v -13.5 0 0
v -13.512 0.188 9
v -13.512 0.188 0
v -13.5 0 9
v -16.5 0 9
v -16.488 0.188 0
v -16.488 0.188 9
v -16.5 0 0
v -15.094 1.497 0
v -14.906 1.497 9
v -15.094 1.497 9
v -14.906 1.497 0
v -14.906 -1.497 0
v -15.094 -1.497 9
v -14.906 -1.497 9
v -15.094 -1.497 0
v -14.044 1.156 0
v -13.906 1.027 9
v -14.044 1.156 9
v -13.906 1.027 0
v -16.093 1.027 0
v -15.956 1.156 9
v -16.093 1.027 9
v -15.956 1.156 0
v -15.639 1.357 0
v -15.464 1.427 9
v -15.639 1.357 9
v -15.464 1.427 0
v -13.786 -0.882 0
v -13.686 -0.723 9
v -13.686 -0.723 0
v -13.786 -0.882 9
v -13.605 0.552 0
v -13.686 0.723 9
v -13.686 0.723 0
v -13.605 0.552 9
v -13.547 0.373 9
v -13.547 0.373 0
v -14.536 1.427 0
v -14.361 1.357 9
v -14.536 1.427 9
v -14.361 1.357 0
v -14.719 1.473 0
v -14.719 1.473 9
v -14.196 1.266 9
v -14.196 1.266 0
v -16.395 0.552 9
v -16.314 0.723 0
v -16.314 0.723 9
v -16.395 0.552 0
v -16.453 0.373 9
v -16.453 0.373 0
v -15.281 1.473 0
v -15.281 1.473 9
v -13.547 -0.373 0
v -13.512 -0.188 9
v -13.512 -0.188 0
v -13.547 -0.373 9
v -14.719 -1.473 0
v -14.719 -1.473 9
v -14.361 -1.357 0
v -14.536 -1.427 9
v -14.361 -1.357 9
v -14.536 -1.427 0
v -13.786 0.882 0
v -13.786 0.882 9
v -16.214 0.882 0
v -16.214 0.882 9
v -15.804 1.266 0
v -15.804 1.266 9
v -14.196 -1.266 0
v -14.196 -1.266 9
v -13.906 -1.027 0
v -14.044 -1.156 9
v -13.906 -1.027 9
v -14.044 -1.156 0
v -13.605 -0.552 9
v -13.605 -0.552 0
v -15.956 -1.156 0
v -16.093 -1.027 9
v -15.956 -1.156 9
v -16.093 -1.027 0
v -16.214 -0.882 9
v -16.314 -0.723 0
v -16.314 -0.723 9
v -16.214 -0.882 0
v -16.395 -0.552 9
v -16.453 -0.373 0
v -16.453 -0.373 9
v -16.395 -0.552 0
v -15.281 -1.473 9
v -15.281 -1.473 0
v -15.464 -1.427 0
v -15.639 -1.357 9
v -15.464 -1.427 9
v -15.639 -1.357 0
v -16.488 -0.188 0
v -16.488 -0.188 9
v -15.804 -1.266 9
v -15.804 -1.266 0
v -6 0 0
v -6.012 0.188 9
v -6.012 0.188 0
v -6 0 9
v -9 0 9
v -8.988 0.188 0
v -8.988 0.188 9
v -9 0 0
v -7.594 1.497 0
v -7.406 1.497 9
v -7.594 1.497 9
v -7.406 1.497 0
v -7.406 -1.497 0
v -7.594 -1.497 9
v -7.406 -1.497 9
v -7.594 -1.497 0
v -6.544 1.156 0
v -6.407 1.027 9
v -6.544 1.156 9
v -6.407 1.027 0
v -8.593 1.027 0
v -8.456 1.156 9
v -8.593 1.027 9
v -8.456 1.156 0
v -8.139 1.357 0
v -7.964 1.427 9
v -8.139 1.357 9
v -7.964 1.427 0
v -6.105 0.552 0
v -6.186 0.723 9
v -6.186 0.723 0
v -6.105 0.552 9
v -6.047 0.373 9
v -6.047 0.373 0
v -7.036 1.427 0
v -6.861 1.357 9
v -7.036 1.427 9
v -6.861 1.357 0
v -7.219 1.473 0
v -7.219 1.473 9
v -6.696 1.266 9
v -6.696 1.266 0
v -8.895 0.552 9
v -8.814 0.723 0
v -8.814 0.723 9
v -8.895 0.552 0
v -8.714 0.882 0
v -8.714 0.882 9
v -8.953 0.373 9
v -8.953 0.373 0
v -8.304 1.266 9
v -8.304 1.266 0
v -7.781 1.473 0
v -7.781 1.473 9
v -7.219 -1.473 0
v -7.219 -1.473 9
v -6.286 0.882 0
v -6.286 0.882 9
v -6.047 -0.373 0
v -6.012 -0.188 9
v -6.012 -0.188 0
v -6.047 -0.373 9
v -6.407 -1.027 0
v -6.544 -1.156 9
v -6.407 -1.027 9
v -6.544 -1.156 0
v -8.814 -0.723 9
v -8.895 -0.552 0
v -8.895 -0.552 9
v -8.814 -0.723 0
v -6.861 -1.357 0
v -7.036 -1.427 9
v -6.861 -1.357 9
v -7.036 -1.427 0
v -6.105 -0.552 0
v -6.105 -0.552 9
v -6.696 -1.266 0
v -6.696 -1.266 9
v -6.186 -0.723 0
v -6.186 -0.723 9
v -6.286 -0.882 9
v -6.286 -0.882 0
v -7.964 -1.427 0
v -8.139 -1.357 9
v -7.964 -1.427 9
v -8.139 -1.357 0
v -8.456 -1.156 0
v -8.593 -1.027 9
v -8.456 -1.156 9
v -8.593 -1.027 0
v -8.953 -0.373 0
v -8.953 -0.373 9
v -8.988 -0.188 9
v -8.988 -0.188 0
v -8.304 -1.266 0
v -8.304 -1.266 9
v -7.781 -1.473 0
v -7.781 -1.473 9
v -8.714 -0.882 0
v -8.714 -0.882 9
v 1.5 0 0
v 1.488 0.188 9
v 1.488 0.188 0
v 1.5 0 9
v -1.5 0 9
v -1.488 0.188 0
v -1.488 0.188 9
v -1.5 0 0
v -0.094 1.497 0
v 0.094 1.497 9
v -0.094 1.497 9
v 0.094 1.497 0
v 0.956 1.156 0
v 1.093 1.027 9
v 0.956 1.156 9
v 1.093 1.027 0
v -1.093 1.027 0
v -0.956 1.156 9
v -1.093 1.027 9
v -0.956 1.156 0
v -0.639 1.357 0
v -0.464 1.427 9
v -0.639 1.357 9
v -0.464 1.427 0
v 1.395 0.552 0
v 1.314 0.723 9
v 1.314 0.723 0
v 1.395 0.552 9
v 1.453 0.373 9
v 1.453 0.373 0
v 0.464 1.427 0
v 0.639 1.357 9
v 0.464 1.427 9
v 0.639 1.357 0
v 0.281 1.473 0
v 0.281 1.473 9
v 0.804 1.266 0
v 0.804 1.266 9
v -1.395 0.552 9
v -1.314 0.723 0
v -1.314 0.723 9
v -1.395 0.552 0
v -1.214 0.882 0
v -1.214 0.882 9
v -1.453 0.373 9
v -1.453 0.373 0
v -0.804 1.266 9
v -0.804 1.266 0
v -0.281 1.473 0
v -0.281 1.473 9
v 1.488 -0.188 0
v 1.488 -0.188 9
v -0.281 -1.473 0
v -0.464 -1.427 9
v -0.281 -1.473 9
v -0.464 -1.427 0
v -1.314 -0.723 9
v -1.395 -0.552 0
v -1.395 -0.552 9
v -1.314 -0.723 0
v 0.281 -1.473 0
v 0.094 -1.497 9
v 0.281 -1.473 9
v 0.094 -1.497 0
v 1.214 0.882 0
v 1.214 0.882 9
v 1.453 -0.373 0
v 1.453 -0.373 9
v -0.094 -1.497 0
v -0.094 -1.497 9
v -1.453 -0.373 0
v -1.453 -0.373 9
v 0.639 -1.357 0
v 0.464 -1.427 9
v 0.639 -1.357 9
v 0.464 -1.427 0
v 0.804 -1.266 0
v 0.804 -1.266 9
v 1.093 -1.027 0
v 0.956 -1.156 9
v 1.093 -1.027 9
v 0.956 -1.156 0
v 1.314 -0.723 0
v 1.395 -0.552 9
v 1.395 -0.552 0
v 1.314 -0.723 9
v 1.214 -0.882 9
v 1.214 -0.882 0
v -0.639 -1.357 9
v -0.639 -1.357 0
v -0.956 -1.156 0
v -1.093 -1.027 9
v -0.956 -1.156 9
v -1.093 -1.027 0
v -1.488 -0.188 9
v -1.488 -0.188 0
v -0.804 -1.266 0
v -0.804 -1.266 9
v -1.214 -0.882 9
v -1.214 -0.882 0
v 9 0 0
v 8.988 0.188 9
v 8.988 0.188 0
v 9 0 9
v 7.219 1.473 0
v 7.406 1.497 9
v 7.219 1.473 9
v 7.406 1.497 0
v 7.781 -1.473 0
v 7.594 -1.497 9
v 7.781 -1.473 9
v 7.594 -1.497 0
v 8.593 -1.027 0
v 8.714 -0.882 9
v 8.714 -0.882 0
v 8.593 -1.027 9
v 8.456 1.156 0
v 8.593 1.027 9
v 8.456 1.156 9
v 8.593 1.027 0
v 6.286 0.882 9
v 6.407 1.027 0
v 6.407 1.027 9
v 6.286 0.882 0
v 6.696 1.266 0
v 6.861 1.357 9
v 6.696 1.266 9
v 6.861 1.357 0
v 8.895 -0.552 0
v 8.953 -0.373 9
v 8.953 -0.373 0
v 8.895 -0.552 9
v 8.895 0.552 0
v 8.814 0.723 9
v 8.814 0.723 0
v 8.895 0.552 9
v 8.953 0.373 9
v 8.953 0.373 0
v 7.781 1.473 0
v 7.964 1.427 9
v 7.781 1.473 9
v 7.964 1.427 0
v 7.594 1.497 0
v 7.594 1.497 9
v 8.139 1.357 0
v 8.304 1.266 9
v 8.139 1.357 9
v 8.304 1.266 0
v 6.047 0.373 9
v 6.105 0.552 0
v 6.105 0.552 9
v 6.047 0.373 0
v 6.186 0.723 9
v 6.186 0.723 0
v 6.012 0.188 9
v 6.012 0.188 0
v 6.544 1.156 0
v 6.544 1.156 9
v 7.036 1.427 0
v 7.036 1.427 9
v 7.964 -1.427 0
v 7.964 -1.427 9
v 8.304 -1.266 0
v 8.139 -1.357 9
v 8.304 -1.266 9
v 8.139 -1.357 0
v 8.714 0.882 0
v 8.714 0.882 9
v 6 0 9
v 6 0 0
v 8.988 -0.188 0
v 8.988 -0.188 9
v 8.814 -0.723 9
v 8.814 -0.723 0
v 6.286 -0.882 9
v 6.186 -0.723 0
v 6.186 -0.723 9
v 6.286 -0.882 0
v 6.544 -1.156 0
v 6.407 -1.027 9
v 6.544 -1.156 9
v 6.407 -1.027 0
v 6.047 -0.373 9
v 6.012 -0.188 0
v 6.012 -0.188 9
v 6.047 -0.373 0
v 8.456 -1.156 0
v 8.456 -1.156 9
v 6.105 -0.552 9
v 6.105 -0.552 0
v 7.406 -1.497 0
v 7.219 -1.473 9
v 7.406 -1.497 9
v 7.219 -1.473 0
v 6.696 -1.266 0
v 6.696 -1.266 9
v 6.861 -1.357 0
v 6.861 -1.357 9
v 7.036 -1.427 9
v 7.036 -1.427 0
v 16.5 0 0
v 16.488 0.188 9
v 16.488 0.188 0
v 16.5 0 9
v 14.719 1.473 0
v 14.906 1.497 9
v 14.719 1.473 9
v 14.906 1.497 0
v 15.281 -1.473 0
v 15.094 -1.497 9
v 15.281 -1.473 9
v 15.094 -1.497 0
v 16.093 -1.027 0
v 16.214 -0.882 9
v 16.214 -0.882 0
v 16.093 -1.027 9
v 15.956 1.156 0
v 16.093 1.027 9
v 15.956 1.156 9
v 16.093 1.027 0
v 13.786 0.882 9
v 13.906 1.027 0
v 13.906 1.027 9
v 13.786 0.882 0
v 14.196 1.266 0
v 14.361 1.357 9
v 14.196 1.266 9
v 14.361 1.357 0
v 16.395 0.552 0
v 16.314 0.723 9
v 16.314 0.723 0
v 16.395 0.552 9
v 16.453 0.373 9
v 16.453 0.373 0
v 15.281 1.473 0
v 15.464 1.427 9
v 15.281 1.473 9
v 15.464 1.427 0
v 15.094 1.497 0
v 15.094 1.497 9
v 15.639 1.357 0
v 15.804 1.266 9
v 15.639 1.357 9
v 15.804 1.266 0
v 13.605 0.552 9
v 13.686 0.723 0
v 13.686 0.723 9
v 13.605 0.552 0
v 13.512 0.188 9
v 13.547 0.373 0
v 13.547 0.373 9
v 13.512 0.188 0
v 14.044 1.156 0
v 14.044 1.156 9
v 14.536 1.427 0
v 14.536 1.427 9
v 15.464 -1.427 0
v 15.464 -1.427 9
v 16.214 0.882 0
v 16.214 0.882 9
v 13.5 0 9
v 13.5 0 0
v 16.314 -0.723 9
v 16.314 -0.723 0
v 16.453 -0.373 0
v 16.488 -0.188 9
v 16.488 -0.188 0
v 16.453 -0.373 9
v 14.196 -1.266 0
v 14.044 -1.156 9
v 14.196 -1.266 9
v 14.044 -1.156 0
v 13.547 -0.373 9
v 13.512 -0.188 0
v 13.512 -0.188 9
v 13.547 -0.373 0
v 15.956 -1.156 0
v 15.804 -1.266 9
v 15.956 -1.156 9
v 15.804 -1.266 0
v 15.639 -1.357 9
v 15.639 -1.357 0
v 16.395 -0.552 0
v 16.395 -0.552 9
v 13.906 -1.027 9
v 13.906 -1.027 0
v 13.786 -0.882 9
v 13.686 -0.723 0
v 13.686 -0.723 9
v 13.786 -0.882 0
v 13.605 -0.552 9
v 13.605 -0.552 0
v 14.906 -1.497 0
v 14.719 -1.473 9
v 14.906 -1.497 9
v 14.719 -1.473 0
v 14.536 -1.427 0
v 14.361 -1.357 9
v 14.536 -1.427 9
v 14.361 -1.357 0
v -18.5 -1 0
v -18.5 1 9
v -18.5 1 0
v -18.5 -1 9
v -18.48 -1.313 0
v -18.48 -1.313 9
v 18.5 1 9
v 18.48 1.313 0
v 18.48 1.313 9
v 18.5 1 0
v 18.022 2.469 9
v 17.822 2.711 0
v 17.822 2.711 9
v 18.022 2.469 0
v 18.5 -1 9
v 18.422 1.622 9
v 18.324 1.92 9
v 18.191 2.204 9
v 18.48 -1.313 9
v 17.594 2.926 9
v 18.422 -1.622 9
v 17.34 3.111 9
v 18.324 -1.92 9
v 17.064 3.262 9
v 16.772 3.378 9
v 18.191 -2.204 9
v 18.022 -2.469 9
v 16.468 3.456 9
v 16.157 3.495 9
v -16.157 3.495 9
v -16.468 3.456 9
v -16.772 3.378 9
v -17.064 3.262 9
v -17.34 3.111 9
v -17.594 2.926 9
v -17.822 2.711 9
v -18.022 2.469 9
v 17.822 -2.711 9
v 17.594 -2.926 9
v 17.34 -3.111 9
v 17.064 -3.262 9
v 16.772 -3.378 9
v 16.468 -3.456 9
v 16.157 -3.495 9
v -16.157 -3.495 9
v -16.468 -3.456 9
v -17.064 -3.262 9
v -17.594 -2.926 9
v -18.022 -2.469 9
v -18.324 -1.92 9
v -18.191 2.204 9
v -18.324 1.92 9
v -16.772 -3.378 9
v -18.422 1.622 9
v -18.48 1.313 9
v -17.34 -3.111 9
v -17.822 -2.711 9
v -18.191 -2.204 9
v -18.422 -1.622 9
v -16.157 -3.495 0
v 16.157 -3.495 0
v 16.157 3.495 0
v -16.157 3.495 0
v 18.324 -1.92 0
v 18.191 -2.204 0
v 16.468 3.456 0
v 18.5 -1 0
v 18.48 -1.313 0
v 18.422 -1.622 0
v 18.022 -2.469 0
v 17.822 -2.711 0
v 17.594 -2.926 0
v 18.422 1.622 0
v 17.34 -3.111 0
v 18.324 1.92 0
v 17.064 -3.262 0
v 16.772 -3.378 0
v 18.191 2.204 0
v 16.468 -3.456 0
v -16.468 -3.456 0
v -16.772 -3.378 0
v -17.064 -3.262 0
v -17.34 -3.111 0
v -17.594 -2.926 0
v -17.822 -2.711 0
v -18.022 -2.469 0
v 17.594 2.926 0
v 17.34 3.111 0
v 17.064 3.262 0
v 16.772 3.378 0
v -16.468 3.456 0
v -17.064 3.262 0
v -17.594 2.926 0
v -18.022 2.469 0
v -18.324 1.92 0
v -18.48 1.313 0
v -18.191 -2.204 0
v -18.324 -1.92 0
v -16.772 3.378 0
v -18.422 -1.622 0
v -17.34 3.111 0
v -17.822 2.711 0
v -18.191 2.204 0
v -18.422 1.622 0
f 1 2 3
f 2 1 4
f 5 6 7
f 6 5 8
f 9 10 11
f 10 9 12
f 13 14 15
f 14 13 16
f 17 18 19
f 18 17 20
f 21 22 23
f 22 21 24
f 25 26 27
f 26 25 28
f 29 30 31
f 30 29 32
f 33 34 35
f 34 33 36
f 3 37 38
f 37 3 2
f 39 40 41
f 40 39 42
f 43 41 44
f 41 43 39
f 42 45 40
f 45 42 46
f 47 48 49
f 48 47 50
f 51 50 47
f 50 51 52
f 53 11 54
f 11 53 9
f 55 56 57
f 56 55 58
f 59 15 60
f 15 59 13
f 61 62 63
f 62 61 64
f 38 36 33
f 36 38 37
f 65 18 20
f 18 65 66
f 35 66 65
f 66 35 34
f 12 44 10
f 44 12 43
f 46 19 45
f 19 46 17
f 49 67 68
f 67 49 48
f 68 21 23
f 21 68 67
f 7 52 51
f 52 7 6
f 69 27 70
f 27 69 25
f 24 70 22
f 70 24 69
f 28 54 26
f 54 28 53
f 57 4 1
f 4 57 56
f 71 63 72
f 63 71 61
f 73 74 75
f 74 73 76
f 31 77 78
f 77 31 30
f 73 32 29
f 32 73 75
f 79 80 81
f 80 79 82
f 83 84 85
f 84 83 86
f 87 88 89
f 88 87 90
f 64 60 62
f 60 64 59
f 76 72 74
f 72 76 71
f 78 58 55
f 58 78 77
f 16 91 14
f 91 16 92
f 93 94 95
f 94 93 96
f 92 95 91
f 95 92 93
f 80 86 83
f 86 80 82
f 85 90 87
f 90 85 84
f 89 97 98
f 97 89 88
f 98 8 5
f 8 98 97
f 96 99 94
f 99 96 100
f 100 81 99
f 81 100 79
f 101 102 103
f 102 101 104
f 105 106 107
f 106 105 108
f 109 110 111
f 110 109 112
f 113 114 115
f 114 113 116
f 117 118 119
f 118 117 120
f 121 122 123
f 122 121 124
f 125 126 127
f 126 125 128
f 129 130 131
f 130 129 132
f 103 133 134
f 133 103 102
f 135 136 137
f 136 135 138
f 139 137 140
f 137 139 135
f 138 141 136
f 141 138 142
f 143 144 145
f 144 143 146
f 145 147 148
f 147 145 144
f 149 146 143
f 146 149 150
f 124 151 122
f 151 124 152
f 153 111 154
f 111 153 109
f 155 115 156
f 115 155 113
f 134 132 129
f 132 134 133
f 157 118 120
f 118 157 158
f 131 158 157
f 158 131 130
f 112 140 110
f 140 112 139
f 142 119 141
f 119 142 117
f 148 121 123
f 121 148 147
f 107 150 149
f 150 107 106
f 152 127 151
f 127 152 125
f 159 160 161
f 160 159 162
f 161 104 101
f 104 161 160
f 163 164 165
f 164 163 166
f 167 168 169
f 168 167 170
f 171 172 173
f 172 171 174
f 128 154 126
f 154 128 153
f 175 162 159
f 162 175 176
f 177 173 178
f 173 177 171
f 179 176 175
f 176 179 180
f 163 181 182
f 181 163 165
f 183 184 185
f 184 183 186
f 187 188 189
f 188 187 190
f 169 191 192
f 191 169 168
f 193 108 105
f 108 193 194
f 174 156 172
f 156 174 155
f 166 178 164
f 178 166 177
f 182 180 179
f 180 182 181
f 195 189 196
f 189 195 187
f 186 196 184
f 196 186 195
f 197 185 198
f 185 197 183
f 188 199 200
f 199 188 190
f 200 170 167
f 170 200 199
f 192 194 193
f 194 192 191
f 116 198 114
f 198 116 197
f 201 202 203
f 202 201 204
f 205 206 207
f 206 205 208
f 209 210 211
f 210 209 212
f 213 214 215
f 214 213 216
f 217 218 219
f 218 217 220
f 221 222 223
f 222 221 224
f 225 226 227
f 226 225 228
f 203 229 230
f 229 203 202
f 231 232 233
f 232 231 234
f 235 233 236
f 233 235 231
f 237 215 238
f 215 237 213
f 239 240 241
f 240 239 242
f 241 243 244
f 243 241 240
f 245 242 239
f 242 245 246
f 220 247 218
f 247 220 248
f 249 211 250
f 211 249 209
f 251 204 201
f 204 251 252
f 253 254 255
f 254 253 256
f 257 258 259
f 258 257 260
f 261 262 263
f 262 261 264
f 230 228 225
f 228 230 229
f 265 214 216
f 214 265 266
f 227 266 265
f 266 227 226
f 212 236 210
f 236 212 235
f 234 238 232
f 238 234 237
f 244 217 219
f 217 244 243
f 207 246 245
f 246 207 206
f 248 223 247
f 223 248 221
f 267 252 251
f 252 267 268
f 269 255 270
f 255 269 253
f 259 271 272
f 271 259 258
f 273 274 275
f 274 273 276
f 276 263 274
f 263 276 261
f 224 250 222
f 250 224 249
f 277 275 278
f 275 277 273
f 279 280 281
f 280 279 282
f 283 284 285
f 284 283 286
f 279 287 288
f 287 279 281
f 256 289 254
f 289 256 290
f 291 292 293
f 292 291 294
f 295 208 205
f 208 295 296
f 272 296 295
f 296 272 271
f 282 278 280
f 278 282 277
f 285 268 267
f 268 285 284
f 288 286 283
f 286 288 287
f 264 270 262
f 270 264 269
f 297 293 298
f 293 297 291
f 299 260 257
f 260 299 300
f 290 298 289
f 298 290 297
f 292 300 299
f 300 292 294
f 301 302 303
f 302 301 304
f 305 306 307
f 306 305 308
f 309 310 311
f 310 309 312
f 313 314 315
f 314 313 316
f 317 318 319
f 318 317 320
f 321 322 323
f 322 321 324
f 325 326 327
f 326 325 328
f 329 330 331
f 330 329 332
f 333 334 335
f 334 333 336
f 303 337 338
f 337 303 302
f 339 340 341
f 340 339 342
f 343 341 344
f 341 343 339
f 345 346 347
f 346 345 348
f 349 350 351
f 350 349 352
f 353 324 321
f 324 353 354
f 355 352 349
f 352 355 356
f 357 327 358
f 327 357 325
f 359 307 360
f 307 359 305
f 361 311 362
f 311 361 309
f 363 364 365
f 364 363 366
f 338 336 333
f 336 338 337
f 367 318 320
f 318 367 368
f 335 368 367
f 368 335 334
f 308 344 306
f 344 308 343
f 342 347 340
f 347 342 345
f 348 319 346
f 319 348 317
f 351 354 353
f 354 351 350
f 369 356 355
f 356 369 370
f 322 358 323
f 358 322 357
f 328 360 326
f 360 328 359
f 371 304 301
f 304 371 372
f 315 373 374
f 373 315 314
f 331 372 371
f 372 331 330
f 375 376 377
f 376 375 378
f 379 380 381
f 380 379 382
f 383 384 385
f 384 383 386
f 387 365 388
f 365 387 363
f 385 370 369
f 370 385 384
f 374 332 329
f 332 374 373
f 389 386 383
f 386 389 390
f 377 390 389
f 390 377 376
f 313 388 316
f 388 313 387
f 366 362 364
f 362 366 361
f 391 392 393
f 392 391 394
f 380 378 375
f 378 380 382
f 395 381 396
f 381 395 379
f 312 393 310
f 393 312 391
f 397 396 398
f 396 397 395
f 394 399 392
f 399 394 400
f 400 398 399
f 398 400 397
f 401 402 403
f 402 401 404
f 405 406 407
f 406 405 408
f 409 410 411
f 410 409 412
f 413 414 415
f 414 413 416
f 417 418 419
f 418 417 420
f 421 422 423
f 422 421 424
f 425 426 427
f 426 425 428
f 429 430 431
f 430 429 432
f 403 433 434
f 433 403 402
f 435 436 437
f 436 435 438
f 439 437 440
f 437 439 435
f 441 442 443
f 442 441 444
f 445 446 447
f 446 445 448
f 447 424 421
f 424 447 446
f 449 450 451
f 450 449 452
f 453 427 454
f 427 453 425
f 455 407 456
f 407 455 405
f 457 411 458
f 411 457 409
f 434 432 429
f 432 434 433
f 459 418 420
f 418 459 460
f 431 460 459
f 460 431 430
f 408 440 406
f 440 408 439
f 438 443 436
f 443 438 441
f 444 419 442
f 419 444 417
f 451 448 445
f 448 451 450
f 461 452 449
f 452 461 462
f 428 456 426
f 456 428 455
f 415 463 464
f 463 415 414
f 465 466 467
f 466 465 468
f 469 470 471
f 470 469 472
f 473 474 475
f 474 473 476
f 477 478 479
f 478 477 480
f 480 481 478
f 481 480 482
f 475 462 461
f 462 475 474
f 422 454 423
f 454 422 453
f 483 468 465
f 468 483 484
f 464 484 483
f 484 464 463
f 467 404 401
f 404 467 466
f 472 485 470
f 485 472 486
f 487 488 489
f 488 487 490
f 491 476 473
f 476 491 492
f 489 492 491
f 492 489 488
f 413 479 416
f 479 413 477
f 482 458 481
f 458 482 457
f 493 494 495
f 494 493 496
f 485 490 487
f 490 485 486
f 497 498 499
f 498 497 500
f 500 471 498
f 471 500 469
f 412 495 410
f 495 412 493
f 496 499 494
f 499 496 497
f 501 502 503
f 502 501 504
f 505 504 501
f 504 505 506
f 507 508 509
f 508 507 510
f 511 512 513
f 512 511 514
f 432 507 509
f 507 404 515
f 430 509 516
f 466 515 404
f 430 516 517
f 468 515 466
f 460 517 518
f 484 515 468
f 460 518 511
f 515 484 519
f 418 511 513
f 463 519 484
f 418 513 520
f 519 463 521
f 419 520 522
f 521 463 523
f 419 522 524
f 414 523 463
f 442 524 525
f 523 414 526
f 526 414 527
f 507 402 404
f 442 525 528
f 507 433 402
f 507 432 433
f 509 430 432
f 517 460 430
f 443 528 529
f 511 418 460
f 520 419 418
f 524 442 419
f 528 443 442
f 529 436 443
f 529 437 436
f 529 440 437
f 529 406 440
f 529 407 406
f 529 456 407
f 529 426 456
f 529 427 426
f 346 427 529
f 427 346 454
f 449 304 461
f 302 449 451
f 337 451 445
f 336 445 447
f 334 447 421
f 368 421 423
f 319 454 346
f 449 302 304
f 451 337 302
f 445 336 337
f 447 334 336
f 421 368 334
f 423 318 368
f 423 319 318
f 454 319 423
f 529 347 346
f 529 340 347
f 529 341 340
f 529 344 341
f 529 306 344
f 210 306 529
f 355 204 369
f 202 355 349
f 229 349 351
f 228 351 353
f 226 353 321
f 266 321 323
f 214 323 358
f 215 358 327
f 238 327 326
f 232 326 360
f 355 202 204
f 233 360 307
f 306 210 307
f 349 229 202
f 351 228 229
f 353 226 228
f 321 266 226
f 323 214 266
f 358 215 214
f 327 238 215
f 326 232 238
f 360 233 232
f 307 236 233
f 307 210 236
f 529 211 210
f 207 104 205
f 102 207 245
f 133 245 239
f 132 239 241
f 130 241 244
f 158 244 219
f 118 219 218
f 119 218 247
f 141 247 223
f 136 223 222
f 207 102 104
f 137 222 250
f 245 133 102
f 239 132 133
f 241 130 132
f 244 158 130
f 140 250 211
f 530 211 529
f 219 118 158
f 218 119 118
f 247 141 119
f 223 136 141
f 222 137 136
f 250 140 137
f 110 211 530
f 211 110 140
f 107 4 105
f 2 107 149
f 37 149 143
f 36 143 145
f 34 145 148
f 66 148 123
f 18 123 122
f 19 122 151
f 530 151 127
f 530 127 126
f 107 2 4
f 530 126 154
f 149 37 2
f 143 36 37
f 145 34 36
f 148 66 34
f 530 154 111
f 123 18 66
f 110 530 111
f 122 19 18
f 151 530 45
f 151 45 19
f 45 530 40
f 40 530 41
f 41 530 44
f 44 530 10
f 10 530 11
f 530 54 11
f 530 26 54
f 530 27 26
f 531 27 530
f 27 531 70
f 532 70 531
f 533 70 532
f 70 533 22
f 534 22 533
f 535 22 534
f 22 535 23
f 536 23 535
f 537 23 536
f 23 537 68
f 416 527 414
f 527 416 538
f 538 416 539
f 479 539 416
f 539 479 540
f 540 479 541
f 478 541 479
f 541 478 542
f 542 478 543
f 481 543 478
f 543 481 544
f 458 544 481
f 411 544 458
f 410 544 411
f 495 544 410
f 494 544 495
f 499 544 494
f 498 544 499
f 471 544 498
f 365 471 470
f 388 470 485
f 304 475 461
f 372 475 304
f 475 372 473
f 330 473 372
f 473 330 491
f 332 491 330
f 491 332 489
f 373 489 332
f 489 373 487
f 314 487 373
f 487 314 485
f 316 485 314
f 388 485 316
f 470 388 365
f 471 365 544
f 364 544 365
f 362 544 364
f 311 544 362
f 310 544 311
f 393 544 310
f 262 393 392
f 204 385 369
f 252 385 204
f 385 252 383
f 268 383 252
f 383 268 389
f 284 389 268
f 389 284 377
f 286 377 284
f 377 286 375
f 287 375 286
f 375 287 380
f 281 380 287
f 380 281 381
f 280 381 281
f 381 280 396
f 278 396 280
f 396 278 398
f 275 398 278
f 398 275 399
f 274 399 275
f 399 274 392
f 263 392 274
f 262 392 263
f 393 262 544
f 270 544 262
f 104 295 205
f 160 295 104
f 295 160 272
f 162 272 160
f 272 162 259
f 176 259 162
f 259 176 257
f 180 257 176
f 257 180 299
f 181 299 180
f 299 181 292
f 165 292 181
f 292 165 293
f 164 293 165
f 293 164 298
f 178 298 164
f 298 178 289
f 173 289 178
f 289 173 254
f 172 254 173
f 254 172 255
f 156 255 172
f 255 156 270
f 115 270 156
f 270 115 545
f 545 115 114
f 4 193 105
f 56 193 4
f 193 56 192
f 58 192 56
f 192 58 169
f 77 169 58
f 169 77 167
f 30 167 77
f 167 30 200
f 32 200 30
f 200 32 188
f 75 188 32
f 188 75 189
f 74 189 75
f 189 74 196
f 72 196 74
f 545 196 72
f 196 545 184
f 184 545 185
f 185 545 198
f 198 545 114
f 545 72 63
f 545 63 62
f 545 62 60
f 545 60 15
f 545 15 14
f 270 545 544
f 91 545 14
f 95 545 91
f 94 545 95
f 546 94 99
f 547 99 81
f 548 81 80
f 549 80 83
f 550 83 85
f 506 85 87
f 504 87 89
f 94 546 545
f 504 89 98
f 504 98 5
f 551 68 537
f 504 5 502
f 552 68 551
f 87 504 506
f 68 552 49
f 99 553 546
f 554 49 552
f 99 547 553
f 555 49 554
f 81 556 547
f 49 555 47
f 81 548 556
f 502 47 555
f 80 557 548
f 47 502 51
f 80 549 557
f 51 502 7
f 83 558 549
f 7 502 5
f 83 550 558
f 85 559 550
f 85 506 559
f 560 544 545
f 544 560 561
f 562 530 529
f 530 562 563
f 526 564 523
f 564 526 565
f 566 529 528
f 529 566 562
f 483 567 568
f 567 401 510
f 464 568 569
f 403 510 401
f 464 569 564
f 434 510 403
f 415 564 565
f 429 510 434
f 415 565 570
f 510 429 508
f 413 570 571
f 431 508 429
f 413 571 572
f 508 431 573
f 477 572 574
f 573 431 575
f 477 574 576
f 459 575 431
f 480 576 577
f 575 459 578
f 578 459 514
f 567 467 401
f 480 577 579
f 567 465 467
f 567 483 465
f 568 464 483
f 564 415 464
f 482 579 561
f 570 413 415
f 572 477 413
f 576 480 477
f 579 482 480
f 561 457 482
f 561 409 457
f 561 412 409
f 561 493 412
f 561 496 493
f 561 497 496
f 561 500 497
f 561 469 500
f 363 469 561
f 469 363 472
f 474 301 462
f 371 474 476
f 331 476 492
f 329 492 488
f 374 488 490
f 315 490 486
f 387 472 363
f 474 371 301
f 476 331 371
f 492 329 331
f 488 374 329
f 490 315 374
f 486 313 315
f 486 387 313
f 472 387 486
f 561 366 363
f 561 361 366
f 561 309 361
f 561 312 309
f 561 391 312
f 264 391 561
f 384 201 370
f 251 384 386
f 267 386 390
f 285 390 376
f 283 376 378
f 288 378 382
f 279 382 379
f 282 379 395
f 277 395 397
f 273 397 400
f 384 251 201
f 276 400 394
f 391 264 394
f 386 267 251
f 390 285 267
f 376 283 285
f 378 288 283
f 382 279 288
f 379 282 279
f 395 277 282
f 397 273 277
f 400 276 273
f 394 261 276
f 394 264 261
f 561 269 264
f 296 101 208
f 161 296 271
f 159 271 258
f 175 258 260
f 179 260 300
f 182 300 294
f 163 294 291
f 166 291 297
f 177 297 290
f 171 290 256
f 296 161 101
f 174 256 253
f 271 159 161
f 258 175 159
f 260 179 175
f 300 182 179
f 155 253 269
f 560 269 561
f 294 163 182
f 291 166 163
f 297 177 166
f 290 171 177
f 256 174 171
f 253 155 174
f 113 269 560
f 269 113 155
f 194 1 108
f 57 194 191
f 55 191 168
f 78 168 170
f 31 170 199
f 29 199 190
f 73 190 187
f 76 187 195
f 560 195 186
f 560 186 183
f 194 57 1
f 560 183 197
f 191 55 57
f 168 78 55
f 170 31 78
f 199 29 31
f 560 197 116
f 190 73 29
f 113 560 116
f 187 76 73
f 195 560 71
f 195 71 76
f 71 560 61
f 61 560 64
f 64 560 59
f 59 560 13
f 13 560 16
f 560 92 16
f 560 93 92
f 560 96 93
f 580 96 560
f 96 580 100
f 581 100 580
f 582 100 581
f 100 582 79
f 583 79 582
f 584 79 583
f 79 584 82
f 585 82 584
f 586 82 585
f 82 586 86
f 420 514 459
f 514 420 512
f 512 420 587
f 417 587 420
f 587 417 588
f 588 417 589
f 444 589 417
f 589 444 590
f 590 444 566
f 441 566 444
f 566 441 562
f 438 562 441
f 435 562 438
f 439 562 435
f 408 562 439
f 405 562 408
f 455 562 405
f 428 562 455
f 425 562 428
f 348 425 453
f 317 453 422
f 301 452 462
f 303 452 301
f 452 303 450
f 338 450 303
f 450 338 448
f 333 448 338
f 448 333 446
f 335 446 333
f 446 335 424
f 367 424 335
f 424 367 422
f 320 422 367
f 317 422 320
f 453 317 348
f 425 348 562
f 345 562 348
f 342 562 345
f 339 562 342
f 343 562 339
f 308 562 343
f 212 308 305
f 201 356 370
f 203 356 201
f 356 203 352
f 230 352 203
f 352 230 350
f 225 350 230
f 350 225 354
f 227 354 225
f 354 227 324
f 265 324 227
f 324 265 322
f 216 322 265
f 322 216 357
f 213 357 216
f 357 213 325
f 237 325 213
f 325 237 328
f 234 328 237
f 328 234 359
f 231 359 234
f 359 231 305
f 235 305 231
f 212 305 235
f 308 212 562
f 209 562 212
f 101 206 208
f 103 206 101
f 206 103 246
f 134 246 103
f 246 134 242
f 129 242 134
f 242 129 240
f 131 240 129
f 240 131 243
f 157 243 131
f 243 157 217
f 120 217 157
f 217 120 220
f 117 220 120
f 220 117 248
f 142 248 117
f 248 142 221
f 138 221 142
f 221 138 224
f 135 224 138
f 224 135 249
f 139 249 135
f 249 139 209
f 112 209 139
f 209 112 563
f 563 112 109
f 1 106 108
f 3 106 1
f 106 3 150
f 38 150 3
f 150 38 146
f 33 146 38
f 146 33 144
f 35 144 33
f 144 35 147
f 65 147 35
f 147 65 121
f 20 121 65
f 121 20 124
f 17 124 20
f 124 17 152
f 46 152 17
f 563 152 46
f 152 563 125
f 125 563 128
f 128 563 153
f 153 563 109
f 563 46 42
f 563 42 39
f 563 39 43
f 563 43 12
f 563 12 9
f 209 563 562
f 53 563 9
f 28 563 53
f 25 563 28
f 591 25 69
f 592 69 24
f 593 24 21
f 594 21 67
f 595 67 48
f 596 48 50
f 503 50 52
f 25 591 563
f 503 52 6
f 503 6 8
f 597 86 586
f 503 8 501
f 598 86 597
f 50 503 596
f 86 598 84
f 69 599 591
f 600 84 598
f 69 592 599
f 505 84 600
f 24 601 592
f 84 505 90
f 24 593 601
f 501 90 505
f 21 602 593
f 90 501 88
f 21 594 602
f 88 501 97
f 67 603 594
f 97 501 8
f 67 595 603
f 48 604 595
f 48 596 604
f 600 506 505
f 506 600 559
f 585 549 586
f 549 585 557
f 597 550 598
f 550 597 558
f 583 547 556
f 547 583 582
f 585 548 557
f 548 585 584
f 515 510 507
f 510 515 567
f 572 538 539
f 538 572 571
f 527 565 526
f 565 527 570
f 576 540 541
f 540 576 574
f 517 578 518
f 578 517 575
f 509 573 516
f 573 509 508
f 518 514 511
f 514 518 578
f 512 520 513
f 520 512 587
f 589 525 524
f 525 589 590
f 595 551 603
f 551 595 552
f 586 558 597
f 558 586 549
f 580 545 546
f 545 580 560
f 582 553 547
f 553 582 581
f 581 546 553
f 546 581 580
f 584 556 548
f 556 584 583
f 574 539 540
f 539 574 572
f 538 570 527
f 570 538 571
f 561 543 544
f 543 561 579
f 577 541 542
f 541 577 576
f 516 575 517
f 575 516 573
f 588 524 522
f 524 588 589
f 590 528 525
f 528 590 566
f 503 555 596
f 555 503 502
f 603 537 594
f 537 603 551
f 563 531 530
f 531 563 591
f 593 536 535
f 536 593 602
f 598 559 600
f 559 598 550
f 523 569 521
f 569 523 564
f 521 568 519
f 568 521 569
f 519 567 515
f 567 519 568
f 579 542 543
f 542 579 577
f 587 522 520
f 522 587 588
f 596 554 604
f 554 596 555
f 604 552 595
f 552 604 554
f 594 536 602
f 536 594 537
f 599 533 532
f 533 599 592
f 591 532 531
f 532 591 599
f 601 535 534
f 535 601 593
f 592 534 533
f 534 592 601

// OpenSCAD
$fn = 50;


difference() {
	union() {
		translate(v = [0, 0, 0]) {
			rotate(a = [0, 0, 0]) {
				hull() {
					translate(v = [-16.0000000000, 1.0000000000, 0]) {
						rotate(a = [0, 0, 0]) {
							translate(v = [0, 0, 0]) {
								rotate(a = [0, 0, 0]) {
									cylinder(h = 9, r = 2.5000000000);
								}
							}
						}
					}
					translate(v = [16.0000000000, 1.0000000000, 0]) {
						rotate(a = [0, 0, 0]) {
							translate(v = [0, 0, 0]) {
								rotate(a = [0, 0, 0]) {
									cylinder(h = 9, r = 2.5000000000);
								}
							}
						}
					}
					translate(v = [-16.0000000000, -1.0000000000, 0]) {
						rotate(a = [0, 0, 0]) {
							translate(v = [0, 0, 0]) {
								rotate(a = [0, 0, 0]) {
									cylinder(h = 9, r = 2.5000000000);
								}
							}
						}
					}
					translate(v = [16.0000000000, -1.0000000000, 0]) {
						rotate(a = [0, 0, 0]) {
							translate(v = [0, 0, 0]) {
								rotate(a = [0, 0, 0]) {
									cylinder(h = 9, r = 2.5000000000);
								}
							}
						}
					}
				}
			}
		}
	}
	union() {
		translate(v = [-15.0000000000, 0.0000000000, 0]) {
			rotate(a = [0, 0, 0]) {
				translate(v = [0, 0, -50]) {
					rotate(a = [0, 0, 0]) {
						cylinder(h = 100, r = 1.5000000000);
					}
				}
			}
		}
		translate(v = [-7.5000000000, 0.0000000000, 0]) {
			rotate(a = [0, 0, 0]) {
				translate(v = [0, 0, -50]) {
					rotate(a = [0, 0, 0]) {
						cylinder(h = 100, r = 1.5000000000);
					}
				}
			}
		}
		translate(v = [0.0000000000, 0.0000000000, 0]) {
			rotate(a = [0, 0, 0]) {
				translate(v = [0, 0, -50]) {
					rotate(a = [0, 0, 0]) {
						cylinder(h = 100, r = 1.5000000000);
					}
				}
			}
		}
		translate(v = [7.5000000000, 0.0000000000, 0]) {
			rotate(a = [0, 0, 0]) {
				translate(v = [0, 0, -50]) {
					rotate(a = [0, 0, 0]) {
						cylinder(h = 100, r = 1.5000000000);
					}
				}
			}
		}
		translate(v = [15.0000000000, 0.0000000000, 0]) {
			rotate(a = [0, 0, 0]) {
				translate(v = [0, 0, -50]) {
					rotate(a = [0, 0, 0]) {
						cylinder(h = 100, r = 1.5000000000);
					}
				}
			}
		}
	}
}
